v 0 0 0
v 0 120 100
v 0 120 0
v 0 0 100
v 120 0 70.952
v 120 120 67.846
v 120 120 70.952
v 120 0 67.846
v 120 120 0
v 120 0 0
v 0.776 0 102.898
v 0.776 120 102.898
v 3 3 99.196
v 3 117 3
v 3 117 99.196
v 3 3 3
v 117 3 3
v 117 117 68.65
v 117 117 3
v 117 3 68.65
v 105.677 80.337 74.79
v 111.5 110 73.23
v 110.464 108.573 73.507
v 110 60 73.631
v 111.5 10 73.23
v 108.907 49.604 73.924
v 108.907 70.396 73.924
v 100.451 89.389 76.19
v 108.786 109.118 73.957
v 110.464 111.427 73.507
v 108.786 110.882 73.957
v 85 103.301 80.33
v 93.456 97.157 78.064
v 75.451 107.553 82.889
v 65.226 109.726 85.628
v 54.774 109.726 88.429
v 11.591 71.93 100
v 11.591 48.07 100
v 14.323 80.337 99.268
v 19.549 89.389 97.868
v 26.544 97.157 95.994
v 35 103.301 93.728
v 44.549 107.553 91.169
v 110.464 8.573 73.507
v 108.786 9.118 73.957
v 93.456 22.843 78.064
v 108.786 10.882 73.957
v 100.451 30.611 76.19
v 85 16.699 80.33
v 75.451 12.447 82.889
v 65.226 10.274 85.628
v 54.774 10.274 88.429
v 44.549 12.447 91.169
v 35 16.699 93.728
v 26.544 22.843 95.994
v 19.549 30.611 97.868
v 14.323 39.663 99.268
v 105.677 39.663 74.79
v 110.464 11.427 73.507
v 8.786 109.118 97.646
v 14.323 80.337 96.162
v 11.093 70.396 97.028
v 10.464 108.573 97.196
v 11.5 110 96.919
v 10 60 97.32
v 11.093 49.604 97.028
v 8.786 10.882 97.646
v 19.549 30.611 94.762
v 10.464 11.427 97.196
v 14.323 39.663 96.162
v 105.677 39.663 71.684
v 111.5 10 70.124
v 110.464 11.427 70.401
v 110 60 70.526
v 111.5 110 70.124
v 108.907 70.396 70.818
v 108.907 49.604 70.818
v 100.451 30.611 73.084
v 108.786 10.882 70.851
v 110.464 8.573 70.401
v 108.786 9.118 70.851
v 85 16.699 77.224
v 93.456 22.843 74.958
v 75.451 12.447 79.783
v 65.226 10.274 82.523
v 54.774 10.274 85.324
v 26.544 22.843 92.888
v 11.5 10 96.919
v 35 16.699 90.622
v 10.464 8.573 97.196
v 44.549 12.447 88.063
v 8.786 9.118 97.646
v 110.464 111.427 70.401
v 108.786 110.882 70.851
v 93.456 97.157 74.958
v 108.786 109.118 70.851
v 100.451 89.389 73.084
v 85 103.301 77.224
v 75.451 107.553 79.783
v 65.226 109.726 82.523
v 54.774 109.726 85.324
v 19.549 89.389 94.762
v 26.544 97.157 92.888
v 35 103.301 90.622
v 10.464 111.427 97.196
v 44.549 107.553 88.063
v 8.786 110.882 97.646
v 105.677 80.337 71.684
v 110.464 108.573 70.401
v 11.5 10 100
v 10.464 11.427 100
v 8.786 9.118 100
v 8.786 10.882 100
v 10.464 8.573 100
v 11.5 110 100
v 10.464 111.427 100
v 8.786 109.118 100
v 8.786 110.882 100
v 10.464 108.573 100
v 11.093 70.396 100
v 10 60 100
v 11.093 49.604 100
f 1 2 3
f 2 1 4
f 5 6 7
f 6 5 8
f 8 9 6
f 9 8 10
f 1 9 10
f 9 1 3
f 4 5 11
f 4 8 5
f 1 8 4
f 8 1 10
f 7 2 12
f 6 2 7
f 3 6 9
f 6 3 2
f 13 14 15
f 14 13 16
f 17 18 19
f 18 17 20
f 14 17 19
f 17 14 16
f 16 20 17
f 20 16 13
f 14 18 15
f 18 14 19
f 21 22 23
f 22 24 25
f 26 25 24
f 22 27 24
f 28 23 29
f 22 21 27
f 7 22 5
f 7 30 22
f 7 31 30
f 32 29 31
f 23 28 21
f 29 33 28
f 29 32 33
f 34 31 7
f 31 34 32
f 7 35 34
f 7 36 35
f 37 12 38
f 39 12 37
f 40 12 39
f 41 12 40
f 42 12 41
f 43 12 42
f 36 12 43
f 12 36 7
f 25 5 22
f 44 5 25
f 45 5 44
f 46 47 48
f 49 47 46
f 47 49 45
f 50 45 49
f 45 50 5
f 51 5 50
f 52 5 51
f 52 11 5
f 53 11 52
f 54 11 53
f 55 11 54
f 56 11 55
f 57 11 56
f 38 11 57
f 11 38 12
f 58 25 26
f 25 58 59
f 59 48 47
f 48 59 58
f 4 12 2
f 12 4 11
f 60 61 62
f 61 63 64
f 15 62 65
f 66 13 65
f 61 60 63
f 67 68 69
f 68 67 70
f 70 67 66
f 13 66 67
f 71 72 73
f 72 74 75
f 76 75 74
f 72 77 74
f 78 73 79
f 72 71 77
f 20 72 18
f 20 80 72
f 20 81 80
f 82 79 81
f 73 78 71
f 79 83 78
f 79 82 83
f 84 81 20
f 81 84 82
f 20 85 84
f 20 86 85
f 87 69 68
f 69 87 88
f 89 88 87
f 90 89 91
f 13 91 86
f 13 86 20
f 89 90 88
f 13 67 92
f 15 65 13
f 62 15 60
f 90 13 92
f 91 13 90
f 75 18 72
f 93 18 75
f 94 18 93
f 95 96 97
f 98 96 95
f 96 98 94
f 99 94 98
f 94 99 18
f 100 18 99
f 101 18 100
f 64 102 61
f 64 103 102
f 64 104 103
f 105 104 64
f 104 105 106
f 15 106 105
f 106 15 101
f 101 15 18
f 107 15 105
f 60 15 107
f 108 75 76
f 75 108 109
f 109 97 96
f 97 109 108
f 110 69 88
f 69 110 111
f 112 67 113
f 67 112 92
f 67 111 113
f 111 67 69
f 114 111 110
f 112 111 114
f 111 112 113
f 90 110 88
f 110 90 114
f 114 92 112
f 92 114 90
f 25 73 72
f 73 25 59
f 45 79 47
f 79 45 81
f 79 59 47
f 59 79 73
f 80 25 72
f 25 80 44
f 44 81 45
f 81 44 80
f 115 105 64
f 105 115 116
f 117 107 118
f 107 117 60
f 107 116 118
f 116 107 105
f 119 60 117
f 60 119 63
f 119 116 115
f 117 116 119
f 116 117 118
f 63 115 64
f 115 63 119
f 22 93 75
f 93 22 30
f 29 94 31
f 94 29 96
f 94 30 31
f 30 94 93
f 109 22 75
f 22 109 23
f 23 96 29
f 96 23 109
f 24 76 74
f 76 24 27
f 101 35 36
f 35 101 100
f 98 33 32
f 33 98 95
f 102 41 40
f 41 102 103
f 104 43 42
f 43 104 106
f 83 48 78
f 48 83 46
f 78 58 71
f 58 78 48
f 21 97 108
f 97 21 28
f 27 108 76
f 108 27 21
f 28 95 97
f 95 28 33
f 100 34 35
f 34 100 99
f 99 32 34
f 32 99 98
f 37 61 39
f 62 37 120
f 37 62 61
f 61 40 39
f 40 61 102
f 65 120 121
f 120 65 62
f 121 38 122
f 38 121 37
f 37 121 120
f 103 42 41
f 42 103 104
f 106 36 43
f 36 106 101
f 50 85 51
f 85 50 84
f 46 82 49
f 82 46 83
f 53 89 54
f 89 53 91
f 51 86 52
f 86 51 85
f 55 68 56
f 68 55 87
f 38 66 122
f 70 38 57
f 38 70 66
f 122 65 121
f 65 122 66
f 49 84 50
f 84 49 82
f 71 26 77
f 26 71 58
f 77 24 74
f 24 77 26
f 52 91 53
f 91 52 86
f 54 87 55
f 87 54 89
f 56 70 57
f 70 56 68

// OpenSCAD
width = 120;
depth = 120;
height = 100;
thickness = 3;
corner = 10;
m5 = 1.5;
tilt = 15;
screw_opening = 50;

difference()
{
    cube(size = [ width, depth, height], center = false);
    translate([thickness, thickness, thickness])
        cube(size = [ width - (thickness * 2), depth - (thickness * 2), height], center = false);

    // Slice tilted top of.
    translate([0, 0, height])
        rotate(a = tilt, v = [0, 1, 0])
            cube(size = [ 2* width, 2* depth, 2* height], center = false);    

}
difference()
{
    // lid.
    translate([0, 0, height])
        rotate(a = tilt, v = [0, 1, 0])
            cube(size = [width+corner, depth, thickness], center = false);
    // Cut anything off right of box.
    translate([width, 0, 0])
        cube(size = [ width*2, depth, height ], center = false);
    // Hole left down corner.
    translate([corner, corner, 0])
        cylinder(height, m5, m5, center = false);
    // Hole right down corner.
    translate([width - corner, corner, 0])
        cylinder(height, m5, m5, center = false);
    // Hole left-upper corner.
    translate([corner, depth - (corner), 0])
        cylinder(height, m5, m5, center = false);
    // Hole in right-upper corner.
    translate([width - corner, depth - corner, 0])
        cylinder(height, m5, m5, center = false);
    translate([width / 2, depth / 2, 0])
        cylinder(height, screw_opening, screw_opening, center = false);
}
